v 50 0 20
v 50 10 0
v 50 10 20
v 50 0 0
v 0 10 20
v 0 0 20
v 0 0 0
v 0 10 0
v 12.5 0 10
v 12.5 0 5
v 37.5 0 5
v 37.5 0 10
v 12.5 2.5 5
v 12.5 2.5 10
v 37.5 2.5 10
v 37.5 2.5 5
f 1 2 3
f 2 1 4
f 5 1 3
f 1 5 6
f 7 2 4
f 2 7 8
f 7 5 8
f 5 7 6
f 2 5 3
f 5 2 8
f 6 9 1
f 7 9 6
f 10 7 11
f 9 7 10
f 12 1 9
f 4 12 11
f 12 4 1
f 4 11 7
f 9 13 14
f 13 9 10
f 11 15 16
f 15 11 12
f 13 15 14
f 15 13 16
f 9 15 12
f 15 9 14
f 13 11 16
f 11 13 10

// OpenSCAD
$fn = 60;

module a(height = 20, width = 50, depth = 10) {
  difference() {
    cube([width, depth, height]);
    translate([width/4, depth/4, height/4])
    rotate([90,0,0])
    cube([width/2, depth/2, height/2]);
  }
}

a(height = 20, width = 50, depth = 10);
